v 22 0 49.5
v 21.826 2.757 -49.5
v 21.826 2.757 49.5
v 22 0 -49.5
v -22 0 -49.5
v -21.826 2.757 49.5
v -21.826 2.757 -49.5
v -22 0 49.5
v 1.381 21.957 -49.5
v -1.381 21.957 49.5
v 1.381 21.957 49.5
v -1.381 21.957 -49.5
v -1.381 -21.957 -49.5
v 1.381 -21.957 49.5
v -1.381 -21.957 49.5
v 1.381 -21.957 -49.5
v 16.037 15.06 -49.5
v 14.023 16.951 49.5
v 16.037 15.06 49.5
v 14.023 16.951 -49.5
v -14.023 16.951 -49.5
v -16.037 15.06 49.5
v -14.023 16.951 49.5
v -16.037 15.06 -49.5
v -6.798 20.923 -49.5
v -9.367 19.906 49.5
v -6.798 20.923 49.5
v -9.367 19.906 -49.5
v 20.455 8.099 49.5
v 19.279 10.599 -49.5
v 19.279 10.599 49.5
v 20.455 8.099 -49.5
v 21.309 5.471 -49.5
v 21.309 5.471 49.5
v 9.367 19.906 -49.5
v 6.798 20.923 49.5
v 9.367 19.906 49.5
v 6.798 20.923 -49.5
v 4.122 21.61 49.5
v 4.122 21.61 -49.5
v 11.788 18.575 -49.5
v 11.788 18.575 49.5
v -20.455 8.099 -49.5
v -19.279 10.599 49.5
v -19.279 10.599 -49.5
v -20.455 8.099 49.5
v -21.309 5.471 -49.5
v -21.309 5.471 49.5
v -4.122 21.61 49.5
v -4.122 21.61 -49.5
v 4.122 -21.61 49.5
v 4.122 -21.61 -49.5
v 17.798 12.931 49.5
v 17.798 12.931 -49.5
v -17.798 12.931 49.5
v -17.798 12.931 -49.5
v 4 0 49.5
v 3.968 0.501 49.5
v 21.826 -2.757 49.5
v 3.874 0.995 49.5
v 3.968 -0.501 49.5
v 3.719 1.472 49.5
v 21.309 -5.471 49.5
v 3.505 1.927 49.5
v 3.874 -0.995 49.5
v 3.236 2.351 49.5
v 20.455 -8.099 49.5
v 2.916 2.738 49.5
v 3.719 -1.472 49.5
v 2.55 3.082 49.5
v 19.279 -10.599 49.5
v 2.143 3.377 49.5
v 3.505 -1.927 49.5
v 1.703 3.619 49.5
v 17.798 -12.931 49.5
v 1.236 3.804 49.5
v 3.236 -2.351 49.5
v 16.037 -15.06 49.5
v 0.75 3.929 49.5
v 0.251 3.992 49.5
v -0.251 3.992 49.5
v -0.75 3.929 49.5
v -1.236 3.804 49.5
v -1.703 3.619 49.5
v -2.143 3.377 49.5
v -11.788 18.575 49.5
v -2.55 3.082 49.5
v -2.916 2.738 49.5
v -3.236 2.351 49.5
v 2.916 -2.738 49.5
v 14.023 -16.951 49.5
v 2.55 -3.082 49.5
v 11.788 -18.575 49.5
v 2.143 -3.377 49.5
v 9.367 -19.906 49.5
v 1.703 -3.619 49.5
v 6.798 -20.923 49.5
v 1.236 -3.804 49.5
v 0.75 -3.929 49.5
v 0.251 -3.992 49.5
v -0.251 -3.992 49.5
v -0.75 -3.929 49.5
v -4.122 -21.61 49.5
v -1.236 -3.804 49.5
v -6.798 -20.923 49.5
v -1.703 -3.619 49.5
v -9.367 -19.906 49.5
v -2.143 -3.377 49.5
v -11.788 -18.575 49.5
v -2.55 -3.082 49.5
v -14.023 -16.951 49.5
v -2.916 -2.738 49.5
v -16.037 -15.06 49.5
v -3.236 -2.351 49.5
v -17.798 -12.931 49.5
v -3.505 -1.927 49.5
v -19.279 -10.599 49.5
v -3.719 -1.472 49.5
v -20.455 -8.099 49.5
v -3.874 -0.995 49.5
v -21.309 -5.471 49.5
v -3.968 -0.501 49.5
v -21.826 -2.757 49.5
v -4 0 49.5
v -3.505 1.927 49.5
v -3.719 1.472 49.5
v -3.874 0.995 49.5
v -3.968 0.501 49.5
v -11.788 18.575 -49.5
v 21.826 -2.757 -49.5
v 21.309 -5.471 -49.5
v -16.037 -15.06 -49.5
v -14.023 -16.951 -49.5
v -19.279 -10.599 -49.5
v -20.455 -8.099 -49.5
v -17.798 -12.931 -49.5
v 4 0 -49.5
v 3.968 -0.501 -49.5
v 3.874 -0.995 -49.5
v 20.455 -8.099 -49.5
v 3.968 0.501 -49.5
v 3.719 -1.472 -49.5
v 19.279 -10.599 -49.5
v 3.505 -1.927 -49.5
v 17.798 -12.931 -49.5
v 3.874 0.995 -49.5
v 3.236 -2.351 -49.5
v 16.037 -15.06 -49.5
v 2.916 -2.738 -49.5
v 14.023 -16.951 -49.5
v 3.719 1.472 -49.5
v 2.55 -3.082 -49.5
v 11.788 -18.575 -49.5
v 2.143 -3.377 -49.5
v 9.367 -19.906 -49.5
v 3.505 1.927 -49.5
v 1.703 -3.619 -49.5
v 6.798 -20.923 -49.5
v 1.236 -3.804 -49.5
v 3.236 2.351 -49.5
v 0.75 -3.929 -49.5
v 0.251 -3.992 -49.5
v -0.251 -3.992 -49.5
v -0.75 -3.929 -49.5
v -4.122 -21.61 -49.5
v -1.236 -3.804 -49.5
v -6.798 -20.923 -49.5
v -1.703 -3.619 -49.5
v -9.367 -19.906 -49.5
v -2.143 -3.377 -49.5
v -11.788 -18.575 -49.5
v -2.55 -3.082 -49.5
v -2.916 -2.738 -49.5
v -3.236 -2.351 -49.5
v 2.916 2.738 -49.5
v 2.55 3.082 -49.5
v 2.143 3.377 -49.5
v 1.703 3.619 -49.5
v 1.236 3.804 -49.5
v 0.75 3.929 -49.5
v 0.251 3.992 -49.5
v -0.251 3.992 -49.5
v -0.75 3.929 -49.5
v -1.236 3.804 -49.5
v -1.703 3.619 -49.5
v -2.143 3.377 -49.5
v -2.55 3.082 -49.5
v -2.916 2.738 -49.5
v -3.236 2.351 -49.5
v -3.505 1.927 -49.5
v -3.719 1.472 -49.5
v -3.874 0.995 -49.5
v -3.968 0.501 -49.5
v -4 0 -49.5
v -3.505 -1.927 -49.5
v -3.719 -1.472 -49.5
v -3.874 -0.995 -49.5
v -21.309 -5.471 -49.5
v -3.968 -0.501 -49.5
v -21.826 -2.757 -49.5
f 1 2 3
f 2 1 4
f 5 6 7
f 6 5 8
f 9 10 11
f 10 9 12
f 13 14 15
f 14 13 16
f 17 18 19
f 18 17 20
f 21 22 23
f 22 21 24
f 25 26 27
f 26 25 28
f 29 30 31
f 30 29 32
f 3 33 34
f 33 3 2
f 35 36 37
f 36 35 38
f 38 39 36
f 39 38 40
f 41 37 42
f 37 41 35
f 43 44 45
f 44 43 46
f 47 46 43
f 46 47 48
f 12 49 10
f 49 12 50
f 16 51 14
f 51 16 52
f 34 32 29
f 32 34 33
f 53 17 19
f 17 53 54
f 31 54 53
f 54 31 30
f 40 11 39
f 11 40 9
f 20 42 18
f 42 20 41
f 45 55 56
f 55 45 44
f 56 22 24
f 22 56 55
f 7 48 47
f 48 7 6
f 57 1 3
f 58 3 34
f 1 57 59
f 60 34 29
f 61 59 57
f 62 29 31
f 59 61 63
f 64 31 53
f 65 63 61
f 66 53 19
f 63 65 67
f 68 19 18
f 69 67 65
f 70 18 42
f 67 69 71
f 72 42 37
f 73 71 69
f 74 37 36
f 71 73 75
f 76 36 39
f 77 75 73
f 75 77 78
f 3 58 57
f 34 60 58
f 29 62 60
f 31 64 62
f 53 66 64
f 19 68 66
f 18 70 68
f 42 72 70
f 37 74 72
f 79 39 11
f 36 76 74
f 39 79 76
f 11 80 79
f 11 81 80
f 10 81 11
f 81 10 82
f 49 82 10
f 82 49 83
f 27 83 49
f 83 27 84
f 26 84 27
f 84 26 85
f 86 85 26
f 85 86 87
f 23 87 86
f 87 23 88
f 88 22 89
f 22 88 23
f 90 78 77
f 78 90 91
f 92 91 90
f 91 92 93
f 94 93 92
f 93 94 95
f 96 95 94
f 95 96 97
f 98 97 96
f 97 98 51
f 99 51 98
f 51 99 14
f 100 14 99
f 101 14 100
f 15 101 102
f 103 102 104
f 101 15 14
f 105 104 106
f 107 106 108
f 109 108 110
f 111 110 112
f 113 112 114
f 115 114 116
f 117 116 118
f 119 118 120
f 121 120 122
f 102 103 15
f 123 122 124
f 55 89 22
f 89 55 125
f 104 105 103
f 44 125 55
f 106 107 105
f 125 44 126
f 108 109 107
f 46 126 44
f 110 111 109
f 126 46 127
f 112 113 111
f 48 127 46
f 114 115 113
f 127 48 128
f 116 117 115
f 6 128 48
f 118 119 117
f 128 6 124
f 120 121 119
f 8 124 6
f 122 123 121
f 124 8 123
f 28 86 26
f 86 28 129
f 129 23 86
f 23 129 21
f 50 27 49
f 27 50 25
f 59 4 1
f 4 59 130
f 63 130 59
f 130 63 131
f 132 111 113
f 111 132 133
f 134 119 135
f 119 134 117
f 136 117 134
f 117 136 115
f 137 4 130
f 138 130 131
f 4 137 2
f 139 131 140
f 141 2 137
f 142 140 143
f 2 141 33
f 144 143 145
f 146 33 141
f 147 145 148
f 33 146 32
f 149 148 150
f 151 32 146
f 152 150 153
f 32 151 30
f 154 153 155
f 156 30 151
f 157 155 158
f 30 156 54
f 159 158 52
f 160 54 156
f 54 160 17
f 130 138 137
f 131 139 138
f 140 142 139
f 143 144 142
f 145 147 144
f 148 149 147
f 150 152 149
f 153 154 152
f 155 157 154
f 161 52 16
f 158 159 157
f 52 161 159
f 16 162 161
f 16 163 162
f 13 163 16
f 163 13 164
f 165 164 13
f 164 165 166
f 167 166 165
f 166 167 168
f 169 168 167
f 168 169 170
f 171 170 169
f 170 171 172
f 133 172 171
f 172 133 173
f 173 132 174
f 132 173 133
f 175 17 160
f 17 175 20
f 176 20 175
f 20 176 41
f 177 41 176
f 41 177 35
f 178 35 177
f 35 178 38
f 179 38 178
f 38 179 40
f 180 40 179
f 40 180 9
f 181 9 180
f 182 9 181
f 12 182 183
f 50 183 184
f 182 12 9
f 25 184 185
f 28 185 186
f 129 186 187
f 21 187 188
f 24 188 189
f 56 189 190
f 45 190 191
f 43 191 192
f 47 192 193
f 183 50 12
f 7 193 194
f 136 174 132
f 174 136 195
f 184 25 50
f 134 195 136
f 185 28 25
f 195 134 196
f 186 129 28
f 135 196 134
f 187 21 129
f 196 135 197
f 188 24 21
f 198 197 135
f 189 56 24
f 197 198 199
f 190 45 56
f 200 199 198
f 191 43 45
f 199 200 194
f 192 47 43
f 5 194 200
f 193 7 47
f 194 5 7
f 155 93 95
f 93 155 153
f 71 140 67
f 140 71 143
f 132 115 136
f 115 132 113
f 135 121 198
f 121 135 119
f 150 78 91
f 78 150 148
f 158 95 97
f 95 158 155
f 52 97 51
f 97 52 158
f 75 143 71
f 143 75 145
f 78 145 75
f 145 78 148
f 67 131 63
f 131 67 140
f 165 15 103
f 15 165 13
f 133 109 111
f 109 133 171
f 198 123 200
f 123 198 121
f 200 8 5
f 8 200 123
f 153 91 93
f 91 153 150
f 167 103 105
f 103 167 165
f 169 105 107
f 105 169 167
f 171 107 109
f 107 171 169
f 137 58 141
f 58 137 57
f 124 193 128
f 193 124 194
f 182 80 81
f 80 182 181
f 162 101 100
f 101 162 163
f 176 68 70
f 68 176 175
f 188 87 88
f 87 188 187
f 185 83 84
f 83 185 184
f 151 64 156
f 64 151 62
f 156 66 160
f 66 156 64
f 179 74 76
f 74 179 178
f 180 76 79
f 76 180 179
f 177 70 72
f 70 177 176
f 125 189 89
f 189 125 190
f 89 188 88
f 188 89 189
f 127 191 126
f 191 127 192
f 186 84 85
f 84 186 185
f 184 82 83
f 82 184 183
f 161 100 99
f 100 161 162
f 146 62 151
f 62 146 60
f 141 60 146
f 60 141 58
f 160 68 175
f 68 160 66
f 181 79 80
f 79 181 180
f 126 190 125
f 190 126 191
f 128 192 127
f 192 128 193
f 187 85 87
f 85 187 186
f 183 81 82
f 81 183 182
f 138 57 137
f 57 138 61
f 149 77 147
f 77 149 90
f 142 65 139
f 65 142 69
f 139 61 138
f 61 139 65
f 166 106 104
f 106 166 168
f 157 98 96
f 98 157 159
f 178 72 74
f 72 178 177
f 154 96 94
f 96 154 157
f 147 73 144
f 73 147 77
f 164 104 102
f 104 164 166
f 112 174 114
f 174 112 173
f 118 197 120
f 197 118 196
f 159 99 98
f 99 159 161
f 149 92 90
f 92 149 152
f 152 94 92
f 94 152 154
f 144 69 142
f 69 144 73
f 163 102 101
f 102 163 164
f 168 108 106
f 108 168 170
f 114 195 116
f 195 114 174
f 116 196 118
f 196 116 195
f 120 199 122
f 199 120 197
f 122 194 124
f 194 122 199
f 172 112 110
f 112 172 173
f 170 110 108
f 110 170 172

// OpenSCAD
$fn = 50;


difference() {
	union() {
		translate(v = [0, 0, -49.5000000000]) {
			cylinder(h = 99, r = 22.0000000000);
		}
	}
	union() {
		translate(v = [0, 0, -100.0000000000]) {
			cylinder(h = 200, r = 4);
		}
	}
}
